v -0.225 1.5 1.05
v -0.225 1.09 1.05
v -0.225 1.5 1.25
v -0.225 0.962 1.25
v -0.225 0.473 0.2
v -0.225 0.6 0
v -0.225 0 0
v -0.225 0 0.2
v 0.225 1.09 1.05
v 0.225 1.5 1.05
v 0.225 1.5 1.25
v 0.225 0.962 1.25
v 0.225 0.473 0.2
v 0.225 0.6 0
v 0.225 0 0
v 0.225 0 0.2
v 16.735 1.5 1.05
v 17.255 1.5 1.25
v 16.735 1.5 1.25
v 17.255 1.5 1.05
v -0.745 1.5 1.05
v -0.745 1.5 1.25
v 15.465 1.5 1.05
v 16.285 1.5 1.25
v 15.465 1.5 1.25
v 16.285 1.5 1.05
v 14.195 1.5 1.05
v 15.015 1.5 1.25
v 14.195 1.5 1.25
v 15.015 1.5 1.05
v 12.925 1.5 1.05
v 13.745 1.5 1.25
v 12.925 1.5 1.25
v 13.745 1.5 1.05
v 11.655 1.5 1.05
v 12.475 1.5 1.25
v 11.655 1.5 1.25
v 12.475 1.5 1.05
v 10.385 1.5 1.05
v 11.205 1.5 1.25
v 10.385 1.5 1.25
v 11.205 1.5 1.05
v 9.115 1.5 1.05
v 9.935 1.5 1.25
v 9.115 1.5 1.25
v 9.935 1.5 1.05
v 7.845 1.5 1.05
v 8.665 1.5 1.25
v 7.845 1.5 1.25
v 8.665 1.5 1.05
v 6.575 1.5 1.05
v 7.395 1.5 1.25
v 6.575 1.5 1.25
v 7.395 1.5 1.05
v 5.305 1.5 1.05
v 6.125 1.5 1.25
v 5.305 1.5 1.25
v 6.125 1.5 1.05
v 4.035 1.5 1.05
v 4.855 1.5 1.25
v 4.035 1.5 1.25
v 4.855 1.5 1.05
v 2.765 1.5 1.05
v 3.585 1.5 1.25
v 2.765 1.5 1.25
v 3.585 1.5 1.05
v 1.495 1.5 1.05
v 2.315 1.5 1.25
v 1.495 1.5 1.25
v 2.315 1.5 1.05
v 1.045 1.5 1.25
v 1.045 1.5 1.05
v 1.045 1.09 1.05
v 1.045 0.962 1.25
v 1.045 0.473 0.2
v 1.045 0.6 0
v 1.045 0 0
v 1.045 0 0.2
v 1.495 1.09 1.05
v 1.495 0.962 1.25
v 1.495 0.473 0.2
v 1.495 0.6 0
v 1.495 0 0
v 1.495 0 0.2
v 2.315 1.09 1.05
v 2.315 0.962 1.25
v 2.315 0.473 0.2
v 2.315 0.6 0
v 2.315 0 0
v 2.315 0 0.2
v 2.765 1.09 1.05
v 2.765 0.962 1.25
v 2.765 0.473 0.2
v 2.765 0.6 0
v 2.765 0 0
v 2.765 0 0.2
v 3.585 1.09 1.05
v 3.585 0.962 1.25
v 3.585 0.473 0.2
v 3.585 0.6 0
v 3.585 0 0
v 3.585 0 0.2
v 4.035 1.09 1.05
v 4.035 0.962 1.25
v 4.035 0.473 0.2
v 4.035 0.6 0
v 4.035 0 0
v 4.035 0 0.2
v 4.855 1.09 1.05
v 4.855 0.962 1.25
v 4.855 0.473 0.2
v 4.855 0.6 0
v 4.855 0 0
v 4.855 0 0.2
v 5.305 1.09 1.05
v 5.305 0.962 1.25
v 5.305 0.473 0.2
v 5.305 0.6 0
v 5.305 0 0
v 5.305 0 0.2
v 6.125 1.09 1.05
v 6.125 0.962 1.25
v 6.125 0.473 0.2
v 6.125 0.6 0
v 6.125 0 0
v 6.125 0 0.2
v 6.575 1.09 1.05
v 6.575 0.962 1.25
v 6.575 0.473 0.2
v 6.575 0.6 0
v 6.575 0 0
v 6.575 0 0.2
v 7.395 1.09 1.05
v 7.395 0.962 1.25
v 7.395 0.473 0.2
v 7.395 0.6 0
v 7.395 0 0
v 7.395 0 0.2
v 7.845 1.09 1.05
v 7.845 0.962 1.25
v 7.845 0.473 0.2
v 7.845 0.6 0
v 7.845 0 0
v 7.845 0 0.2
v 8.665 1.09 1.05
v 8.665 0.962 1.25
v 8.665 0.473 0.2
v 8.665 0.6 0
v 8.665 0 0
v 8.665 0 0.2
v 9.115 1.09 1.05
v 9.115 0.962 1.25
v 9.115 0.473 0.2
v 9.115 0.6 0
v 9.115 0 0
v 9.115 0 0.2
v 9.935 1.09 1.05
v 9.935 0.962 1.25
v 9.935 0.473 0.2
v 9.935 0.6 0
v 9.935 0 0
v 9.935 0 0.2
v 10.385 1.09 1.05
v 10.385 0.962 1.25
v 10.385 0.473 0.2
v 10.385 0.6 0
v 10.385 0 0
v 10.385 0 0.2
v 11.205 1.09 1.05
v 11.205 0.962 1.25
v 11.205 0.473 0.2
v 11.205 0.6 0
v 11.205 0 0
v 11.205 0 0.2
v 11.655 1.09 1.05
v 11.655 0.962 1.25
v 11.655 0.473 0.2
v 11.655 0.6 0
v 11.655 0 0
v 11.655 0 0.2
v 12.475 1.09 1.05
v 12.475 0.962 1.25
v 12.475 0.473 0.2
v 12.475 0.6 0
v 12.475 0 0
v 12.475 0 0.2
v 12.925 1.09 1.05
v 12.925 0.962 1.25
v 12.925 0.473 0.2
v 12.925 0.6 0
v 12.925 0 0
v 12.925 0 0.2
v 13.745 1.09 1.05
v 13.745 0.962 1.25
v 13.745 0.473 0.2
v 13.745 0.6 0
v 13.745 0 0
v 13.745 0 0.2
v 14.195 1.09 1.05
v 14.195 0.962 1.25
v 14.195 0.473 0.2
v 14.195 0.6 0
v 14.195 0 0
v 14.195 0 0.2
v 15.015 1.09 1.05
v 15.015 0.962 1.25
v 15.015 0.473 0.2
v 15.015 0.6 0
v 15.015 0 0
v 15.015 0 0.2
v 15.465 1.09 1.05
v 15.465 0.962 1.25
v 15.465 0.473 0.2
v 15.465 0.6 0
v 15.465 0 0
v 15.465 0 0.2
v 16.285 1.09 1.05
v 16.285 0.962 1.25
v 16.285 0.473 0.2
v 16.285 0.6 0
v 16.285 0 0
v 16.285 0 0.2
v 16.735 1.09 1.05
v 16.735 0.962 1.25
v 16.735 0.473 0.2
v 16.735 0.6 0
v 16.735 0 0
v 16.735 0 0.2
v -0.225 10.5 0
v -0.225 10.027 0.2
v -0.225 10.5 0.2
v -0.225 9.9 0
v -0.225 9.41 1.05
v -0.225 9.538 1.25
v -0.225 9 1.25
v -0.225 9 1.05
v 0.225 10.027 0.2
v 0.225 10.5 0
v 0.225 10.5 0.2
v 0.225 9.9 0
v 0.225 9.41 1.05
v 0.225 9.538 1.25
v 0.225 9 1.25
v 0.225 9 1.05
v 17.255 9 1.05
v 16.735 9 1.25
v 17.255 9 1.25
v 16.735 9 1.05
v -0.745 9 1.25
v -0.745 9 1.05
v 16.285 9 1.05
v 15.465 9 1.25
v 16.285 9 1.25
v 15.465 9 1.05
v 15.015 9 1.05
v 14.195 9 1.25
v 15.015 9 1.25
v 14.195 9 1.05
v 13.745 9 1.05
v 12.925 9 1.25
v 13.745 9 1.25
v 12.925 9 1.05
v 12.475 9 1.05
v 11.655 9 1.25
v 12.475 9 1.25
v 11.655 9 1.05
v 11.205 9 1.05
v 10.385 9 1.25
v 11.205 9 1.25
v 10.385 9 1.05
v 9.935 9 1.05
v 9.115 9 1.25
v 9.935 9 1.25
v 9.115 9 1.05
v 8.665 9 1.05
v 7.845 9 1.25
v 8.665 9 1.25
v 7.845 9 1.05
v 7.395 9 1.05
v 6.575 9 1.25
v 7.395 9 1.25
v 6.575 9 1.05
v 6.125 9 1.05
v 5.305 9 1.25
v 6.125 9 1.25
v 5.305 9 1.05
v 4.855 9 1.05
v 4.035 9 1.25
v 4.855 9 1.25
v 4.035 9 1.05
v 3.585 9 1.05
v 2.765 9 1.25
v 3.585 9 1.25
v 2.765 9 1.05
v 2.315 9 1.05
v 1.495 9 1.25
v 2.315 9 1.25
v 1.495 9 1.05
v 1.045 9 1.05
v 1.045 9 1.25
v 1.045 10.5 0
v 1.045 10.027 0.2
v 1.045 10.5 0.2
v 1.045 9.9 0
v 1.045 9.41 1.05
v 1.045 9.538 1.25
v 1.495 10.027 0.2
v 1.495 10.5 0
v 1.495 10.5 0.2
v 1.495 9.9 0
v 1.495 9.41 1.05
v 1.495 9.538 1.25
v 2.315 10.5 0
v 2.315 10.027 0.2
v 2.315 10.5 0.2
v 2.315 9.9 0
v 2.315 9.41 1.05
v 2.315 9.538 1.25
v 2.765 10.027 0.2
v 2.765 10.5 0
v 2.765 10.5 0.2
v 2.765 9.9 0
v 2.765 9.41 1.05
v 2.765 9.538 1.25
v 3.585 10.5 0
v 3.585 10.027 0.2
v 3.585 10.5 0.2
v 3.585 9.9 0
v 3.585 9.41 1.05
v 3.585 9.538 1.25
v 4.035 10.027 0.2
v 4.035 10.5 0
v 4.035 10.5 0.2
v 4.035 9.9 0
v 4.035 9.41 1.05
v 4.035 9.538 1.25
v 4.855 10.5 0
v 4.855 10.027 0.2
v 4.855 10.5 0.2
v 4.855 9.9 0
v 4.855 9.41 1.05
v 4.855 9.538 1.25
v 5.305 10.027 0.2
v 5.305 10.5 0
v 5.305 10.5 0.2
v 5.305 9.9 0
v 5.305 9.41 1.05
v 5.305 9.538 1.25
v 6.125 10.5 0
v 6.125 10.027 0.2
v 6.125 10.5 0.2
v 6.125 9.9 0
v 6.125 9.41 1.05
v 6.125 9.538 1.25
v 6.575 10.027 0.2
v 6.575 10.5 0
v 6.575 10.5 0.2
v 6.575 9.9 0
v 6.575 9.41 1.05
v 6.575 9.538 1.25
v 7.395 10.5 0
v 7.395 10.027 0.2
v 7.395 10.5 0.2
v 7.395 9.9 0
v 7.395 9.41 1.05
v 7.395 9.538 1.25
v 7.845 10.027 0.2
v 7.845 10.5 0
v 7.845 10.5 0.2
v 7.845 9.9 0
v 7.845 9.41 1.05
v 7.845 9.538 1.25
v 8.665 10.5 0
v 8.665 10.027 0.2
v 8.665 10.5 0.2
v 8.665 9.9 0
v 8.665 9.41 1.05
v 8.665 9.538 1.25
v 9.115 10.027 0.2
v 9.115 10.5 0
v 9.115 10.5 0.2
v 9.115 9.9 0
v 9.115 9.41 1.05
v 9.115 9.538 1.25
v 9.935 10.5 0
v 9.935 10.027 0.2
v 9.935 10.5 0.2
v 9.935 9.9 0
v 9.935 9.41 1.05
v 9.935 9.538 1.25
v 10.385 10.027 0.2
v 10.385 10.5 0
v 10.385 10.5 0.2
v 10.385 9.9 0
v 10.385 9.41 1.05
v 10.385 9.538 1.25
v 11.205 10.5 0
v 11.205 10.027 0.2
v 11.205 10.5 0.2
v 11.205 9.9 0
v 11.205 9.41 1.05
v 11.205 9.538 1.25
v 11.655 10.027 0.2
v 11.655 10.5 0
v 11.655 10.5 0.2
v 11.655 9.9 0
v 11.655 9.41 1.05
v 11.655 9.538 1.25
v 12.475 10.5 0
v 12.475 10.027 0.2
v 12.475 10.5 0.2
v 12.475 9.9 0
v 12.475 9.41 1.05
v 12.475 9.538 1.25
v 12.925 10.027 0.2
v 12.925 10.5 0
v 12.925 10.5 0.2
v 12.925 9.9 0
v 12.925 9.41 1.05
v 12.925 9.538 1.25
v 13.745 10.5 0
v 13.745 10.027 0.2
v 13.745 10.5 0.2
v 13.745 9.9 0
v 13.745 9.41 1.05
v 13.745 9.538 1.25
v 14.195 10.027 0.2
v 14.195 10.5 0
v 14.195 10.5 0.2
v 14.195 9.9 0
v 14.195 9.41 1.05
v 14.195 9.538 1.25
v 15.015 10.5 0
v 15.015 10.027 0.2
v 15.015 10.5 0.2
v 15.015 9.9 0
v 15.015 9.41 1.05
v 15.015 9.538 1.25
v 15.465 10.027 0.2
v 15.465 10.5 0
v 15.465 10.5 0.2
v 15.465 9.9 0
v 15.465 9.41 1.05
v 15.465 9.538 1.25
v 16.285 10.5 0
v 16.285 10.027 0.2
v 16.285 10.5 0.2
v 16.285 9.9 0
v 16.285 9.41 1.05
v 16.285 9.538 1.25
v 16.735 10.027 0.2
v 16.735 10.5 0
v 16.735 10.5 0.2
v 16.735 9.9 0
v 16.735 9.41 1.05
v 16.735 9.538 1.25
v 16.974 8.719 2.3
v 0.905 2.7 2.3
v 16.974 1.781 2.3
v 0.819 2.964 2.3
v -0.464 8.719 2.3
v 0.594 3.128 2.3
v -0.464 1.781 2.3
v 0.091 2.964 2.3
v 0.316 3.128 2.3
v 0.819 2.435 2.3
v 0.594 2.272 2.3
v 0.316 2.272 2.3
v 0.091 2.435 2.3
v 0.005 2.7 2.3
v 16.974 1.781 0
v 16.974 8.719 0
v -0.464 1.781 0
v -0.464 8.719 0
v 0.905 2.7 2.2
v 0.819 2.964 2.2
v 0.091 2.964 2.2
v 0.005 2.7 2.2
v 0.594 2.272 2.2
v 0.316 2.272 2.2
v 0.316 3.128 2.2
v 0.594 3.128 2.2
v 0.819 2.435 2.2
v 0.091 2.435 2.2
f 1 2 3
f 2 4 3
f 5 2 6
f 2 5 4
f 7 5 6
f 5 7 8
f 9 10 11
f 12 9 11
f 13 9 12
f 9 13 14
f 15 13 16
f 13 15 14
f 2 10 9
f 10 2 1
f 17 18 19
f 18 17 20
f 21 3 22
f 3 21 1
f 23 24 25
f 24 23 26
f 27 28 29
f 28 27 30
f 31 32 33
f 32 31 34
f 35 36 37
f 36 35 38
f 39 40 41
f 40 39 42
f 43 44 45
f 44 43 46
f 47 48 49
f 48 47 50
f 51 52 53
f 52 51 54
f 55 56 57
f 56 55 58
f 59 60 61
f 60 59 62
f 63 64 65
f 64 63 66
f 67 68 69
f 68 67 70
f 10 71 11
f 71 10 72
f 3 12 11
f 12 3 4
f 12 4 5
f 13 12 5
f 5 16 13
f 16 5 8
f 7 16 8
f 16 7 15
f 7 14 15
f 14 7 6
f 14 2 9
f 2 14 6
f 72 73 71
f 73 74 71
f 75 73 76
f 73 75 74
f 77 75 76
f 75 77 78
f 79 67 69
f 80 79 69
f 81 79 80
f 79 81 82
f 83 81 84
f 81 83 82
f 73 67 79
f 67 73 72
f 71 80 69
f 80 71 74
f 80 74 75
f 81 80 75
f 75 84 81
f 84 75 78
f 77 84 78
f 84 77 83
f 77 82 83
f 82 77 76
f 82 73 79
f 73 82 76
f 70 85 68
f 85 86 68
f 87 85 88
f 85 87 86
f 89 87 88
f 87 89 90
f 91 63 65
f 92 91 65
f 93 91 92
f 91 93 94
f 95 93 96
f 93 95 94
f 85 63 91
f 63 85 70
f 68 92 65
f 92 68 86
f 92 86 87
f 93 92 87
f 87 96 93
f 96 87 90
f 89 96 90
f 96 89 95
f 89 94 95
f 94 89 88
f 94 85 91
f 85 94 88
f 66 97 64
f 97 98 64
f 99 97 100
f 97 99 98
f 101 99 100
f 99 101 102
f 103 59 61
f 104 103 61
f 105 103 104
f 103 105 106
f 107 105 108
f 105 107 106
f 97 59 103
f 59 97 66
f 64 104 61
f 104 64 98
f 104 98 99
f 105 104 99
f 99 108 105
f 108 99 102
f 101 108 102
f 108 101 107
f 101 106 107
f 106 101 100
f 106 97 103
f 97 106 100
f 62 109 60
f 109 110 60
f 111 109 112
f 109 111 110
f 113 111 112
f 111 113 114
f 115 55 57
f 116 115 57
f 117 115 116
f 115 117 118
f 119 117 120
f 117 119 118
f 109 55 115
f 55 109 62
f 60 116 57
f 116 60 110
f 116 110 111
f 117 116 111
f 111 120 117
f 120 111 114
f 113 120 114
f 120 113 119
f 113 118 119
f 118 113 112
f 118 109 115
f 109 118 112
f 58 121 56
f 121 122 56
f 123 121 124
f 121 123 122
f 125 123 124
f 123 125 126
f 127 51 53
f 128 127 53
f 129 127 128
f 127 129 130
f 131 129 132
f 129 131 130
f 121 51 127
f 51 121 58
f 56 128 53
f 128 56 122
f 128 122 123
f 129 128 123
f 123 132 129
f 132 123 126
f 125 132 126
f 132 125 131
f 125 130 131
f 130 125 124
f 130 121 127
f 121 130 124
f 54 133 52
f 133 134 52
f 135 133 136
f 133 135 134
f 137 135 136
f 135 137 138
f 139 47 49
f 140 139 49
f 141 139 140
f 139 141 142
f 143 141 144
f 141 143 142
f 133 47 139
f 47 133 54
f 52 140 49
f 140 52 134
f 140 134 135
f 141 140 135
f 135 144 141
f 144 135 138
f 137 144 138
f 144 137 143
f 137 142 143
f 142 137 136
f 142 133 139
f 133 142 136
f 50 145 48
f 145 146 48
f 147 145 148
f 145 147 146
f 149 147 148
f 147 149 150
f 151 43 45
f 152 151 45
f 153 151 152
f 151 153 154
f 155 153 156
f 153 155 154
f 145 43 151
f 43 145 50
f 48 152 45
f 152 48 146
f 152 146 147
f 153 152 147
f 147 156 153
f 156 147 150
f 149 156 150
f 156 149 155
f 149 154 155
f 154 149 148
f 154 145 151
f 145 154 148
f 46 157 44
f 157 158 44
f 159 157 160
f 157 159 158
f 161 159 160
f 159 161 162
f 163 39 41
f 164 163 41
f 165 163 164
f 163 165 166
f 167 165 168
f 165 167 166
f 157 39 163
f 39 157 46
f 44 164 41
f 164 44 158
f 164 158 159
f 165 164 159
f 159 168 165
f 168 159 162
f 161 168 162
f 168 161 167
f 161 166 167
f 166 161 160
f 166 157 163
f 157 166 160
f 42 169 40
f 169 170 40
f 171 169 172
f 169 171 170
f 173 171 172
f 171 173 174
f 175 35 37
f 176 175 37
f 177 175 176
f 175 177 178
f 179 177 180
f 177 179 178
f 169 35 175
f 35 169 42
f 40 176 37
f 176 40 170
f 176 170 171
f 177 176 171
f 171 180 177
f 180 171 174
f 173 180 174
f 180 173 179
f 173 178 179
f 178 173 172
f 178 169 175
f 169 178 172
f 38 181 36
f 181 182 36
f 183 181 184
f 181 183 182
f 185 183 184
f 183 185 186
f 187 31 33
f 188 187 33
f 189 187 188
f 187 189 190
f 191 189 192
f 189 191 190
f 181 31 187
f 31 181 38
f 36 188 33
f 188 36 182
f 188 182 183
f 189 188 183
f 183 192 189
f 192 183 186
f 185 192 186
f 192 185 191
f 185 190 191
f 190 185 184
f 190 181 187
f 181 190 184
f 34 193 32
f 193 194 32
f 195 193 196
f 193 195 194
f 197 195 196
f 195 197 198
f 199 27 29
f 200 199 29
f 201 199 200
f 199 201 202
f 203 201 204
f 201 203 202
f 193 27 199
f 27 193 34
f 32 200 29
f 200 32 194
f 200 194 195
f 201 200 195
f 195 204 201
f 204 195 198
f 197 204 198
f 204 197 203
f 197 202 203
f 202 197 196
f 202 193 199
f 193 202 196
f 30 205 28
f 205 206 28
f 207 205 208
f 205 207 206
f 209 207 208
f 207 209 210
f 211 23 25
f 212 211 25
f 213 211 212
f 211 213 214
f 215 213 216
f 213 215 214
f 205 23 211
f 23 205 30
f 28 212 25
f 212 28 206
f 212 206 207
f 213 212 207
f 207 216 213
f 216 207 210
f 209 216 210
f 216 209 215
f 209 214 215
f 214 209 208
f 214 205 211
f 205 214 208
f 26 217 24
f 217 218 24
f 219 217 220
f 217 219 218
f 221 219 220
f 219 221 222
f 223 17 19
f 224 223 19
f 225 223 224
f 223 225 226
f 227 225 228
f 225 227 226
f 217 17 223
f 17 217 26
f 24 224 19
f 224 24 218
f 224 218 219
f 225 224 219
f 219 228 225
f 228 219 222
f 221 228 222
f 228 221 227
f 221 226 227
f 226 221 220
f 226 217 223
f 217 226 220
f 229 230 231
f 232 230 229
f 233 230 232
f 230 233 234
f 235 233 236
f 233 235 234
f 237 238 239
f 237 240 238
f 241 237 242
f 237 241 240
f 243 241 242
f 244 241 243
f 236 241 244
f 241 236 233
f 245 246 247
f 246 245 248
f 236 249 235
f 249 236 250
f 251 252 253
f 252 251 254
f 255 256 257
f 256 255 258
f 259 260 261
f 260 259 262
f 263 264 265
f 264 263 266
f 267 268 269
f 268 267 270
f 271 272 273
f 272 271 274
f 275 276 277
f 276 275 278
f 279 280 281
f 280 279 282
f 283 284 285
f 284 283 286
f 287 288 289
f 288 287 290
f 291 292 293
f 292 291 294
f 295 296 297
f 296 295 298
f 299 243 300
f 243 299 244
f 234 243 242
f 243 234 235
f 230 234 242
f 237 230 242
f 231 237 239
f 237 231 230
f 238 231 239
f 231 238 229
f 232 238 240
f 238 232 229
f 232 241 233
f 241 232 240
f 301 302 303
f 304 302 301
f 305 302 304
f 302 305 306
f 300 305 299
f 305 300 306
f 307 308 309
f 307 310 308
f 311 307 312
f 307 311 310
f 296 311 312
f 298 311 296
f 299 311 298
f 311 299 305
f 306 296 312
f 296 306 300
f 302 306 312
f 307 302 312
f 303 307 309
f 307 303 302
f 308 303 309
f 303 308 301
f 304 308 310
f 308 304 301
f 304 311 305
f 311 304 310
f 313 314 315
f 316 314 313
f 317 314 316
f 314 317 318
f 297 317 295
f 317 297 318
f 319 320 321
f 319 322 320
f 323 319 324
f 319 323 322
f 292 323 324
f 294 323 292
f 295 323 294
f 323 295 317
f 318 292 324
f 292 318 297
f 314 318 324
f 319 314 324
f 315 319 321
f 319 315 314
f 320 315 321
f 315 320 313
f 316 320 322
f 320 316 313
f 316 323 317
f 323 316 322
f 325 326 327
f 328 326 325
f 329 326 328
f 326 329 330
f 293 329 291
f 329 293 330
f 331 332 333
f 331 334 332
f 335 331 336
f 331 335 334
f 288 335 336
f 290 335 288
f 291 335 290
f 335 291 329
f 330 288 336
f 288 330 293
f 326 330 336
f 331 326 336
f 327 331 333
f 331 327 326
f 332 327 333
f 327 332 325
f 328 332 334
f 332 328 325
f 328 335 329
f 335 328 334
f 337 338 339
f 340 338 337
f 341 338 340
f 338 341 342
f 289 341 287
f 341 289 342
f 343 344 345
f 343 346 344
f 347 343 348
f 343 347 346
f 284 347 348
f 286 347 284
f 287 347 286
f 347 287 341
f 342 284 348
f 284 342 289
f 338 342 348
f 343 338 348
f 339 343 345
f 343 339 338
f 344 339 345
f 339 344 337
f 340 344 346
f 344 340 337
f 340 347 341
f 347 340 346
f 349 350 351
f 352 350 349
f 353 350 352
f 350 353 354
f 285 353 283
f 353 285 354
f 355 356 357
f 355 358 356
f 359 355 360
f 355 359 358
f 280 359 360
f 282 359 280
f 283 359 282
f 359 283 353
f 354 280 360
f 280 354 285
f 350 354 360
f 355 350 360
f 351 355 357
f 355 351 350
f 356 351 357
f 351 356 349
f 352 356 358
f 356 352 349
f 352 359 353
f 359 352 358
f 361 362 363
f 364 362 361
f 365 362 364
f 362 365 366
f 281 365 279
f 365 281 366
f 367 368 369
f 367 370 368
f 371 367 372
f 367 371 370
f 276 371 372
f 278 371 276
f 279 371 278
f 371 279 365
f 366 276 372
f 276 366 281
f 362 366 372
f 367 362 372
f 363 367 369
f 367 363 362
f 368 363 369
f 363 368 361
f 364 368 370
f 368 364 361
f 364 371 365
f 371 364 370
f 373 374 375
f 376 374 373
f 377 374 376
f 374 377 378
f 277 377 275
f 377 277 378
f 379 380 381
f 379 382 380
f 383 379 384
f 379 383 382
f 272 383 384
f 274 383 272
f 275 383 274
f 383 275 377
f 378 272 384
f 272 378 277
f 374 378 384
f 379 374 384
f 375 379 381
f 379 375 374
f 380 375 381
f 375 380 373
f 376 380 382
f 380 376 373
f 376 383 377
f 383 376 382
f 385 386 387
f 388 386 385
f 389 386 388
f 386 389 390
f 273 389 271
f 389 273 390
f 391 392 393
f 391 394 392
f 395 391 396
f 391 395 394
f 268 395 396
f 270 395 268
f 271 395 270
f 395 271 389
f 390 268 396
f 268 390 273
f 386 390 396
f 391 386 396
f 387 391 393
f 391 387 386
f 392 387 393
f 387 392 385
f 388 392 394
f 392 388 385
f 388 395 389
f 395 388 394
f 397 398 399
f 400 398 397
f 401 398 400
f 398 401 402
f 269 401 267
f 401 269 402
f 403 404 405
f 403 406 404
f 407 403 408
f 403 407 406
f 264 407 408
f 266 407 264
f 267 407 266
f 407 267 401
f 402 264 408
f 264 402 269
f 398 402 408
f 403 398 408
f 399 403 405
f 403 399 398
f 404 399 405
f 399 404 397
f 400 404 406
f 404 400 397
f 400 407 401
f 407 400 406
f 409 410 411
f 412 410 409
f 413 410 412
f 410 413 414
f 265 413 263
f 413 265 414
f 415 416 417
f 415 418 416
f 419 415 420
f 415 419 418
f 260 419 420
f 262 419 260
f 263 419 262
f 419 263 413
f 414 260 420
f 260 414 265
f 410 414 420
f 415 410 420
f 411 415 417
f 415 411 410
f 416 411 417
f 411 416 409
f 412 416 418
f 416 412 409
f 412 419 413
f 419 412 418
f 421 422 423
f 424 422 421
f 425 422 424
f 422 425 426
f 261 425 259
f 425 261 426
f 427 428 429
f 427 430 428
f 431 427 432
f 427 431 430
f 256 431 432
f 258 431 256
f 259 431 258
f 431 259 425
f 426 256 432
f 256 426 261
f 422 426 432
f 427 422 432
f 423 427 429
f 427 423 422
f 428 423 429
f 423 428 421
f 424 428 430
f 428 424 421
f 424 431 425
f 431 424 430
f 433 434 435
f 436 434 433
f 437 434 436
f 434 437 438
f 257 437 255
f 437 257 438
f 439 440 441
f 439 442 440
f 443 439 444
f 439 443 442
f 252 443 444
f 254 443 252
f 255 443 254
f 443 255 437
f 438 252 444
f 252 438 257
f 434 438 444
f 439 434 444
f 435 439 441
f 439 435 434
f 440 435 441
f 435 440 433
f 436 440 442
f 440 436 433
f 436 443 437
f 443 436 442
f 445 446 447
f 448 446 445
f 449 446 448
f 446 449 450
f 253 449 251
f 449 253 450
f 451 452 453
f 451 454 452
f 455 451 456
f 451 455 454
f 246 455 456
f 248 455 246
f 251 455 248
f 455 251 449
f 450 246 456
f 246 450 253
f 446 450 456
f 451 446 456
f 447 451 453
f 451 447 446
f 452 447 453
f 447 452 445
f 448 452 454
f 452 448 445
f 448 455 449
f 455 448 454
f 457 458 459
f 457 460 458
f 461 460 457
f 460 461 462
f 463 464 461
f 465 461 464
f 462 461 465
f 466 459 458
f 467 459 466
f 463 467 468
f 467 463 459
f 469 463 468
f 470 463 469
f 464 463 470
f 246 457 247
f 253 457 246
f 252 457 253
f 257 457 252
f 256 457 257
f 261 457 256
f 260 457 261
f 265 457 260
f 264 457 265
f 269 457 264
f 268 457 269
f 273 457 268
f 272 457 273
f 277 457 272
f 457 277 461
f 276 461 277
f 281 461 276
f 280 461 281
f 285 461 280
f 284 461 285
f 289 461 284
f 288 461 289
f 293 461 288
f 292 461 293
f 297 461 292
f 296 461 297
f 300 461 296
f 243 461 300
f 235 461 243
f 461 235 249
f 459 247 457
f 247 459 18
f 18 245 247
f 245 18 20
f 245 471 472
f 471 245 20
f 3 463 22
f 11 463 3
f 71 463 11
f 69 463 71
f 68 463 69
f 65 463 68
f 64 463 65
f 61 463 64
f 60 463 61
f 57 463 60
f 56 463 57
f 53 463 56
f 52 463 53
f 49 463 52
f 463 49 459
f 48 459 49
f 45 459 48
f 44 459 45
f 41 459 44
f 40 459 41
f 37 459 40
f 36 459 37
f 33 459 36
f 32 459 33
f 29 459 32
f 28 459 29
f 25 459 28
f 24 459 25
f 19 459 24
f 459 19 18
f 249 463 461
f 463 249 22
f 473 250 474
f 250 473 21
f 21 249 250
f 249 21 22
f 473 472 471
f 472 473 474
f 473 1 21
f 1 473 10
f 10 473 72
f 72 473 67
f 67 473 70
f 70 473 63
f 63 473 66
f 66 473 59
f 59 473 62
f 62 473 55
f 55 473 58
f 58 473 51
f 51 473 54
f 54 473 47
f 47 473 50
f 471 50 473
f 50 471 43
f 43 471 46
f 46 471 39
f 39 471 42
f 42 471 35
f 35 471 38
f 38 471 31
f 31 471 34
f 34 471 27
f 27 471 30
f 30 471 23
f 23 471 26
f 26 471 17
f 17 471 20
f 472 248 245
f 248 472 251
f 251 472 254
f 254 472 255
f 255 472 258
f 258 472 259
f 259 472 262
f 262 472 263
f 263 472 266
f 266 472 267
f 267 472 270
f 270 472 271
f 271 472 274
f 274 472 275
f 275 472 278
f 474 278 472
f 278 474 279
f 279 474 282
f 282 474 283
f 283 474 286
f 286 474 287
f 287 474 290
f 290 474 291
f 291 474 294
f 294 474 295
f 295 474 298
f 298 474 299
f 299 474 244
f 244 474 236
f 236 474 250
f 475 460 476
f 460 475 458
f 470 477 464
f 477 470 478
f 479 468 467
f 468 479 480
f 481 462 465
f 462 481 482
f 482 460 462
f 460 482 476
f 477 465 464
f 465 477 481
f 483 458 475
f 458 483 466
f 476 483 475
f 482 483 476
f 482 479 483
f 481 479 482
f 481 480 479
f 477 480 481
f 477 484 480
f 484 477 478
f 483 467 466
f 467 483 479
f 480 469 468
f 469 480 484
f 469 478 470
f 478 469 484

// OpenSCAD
// file: pin.scad
// This module outputs bended pin
// _L - whole pin length
// _l - length of bottom part
// _H - whole pin height
// _th - pin thickness
// _a - bending angle
// _W - pin width
module pin(_L,_l,_H,_th,_a,_W)
{
	// Internal variables
    _d1 = _th*sin(_a) / (1-cos(_a));
    _d2 = (_th-_H)*cos(_a) / sin(_a);

	rotate([90,0,90])
    // Extrude the following polygon
	linear_extrude(height = _W, center = true, convexity = 10, twist = 0)
        polygon([[0,0],
                 [_l,0],
				 [_l+_d2,_H-_th],
				 [_L,_H-_th],
				 [_L,_H],
				 [_l+_d2-_d1,_H],
				 [_l-_d1,_th],
				 [0,_th]]);
}

// Example of usage
pin(2,1,1,0.2,115,0.5);
// file: case.scad
// This module draws case
// _L - case length
// _W - case width
// _H - case height
// _ph - top point (vertical) of pin connection area
// _pt - pin thickness
// _atl - case angle top left,
// _atr - case angle top right,
// _atu - case angle top up
// _atd - case angle top down
// _abl - case angle bottom left,
// _abr - case angle bottom right,
// _abu - case angle bottom up
// _abd - case angle bottom down
// _n_x - notch X position relative to case corner
// _n_y - notch Y position relative to case corner
// _n_d - notch diameter
// _n_z - notch_depth
module case(_L,_W,_H,_ph,_pt,_atl,_atr,_atu,_atd,_abl,_abr,_abu,_abd, _n_x, _n_y, _n_d, _n_z)
{
    _tth = _H - _ph;
    _bth = _ph - _pt;
    _dtl = _tth * cos(_atl) / sin(_atl);
    _dtr = _tth * cos(_atr) / sin(_atr);
    _dtu = _tth * cos(_atu) / sin(_atu);
    _dtd = _tth * cos(_atd) / sin(_atd);
    _dbl = _bth * cos(_abl) / sin(_abl);
    _dbr = _bth * cos(_abr) / sin(_abr);
    _dbu = _bth * cos(_abu) / sin(_abu);
    _dbd = _bth * cos(_abd) / sin(_abd);
	// Make case with notch - difference between case and small cylinder
    difference()
    {
        // This is our case
        polyhedron(
            points = [
                // top points
                [ 0 + _dtl, 0 + _dtd, _H],
                [_L - _dtr, 0 + _dtd, _H],
                [_L - _dtr,_W - _dtu, _H],
                [ 0 + _dtl,_W - _dtu, _H],
                // middle top points
                [ 0, 0,_ph],
                [_L, 0,_ph],
                [_L,_W,_ph],
                [ 0,_W,_ph],
                // middle bottom points
                [ 0, 0,_ph - _pt],
                [_L, 0,_ph - _pt],
                [_L,_W,_ph - _pt],
                [ 0,_W,_ph - _pt],
                // bottom points
                [ 0 + _dbl, 0 + _dbd, 0],
                [_L - _dbr, 0 + _dbd, 0],
                [_L - _dbr,_W - _dbu, 0],
                [ 0 + _dbl,_W - _dbu, 0]
            ],
            triangles = [
                // Top
                [ 0, 3, 2, 1],
                // Top sides
                [ 4, 0, 1, 5],
                [ 5, 1, 2, 6],
                [ 6, 2, 3, 7],
                [ 7, 3, 0, 4],
                // Middle sides
                [ 4, 5, 9, 8],
                [ 5, 6,10, 9],
                [ 6, 7,11,10],
                [ 7, 4, 8,11],
                // Bottom sides
                [12, 8, 9,13],
                [13, 9,10,14],
                [14,10,11,15],
                [15,11, 8,12],
                // Bottom
                [12,13,14,15]
            ]
        );
        // This is notch
        translate([_n_x,_n_y,_H])
            cylinder(r = _n_d/2, h = _n_z*2, center = true, $fn=10);
    }
}

// Example of usage
// case(10,5,1.5,0.7,0.3,80,80,80,80,45,45,45,45, 1,1,1);
// main file
use <case.scad>
use <pin.scad>

case_z = 2.3;
case_x = 18;
case_y = 7.5;
case_a = 75;

notch_d=0.9;
notch_depth=0.1;
notch_x=1.2;
notch_y=1.2;

side1_pins = 14;
side2_pins = 0;
side3_pins = 14;
side4_pins = 0;
pin_distance = 1.27;

pin_th = 0.2;
pin_W = 0.45;
pin_L = 1.5;
pin_H = case_z/2+pin_th/2;
pin_l = 0.6;
pin_a = 115;

// Array of pins
// _cnt - number of pins
// _distance - distance between pin centres
module pins_array(_cnt, _distance)
{
	if (_cnt>0)
	{
		for (_i = [0:_cnt-1])
		{
			translate([_distance*_i,0,0])
				pin(pin_L,pin_l,pin_H,pin_th,pin_a,pin_W);
		}
	}
}

// Complete model
union()
{
	// Top pins
	translate([(side1_pins-side3_pins)*pin_distance/2,case_y+pin_L*2,0])
		mirror([0,1,0])
			pins_array(side3_pins, pin_distance);

	// Bottom pins
	pins_array(side1_pins, pin_distance);

	// Left pins
	translate([-(case_x-(side1_pins-1)*pin_distance)/2 - pin_L,pin_L+case_y/2-(side4_pins-1)*pin_distance/2,0])
		mirror([1,0,0])
			rotate([0,0,90])
				pins_array(side4_pins, pin_distance);

	// Right pins
	translate([-(case_x-(side1_pins-1)*pin_distance)/2-pin_L+case_x+2*pin_L,pin_L+case_y/2-(side2_pins-1)*pin_distance/2,0])
		mirror([0,1,0])
			mirror([0,1,0])
				rotate([0,0,90])
					pins_array(side2_pins, pin_distance);

	// Case
	translate([-(case_x-(side1_pins-1)*pin_distance)/2,pin_L,0])
		case(case_x,case_y,case_z,pin_H,pin_th,case_a,case_a,case_a,case_a,case_a,case_a,case_a,case_a, notch_x,notch_y,notch_d,notch_depth);
}
